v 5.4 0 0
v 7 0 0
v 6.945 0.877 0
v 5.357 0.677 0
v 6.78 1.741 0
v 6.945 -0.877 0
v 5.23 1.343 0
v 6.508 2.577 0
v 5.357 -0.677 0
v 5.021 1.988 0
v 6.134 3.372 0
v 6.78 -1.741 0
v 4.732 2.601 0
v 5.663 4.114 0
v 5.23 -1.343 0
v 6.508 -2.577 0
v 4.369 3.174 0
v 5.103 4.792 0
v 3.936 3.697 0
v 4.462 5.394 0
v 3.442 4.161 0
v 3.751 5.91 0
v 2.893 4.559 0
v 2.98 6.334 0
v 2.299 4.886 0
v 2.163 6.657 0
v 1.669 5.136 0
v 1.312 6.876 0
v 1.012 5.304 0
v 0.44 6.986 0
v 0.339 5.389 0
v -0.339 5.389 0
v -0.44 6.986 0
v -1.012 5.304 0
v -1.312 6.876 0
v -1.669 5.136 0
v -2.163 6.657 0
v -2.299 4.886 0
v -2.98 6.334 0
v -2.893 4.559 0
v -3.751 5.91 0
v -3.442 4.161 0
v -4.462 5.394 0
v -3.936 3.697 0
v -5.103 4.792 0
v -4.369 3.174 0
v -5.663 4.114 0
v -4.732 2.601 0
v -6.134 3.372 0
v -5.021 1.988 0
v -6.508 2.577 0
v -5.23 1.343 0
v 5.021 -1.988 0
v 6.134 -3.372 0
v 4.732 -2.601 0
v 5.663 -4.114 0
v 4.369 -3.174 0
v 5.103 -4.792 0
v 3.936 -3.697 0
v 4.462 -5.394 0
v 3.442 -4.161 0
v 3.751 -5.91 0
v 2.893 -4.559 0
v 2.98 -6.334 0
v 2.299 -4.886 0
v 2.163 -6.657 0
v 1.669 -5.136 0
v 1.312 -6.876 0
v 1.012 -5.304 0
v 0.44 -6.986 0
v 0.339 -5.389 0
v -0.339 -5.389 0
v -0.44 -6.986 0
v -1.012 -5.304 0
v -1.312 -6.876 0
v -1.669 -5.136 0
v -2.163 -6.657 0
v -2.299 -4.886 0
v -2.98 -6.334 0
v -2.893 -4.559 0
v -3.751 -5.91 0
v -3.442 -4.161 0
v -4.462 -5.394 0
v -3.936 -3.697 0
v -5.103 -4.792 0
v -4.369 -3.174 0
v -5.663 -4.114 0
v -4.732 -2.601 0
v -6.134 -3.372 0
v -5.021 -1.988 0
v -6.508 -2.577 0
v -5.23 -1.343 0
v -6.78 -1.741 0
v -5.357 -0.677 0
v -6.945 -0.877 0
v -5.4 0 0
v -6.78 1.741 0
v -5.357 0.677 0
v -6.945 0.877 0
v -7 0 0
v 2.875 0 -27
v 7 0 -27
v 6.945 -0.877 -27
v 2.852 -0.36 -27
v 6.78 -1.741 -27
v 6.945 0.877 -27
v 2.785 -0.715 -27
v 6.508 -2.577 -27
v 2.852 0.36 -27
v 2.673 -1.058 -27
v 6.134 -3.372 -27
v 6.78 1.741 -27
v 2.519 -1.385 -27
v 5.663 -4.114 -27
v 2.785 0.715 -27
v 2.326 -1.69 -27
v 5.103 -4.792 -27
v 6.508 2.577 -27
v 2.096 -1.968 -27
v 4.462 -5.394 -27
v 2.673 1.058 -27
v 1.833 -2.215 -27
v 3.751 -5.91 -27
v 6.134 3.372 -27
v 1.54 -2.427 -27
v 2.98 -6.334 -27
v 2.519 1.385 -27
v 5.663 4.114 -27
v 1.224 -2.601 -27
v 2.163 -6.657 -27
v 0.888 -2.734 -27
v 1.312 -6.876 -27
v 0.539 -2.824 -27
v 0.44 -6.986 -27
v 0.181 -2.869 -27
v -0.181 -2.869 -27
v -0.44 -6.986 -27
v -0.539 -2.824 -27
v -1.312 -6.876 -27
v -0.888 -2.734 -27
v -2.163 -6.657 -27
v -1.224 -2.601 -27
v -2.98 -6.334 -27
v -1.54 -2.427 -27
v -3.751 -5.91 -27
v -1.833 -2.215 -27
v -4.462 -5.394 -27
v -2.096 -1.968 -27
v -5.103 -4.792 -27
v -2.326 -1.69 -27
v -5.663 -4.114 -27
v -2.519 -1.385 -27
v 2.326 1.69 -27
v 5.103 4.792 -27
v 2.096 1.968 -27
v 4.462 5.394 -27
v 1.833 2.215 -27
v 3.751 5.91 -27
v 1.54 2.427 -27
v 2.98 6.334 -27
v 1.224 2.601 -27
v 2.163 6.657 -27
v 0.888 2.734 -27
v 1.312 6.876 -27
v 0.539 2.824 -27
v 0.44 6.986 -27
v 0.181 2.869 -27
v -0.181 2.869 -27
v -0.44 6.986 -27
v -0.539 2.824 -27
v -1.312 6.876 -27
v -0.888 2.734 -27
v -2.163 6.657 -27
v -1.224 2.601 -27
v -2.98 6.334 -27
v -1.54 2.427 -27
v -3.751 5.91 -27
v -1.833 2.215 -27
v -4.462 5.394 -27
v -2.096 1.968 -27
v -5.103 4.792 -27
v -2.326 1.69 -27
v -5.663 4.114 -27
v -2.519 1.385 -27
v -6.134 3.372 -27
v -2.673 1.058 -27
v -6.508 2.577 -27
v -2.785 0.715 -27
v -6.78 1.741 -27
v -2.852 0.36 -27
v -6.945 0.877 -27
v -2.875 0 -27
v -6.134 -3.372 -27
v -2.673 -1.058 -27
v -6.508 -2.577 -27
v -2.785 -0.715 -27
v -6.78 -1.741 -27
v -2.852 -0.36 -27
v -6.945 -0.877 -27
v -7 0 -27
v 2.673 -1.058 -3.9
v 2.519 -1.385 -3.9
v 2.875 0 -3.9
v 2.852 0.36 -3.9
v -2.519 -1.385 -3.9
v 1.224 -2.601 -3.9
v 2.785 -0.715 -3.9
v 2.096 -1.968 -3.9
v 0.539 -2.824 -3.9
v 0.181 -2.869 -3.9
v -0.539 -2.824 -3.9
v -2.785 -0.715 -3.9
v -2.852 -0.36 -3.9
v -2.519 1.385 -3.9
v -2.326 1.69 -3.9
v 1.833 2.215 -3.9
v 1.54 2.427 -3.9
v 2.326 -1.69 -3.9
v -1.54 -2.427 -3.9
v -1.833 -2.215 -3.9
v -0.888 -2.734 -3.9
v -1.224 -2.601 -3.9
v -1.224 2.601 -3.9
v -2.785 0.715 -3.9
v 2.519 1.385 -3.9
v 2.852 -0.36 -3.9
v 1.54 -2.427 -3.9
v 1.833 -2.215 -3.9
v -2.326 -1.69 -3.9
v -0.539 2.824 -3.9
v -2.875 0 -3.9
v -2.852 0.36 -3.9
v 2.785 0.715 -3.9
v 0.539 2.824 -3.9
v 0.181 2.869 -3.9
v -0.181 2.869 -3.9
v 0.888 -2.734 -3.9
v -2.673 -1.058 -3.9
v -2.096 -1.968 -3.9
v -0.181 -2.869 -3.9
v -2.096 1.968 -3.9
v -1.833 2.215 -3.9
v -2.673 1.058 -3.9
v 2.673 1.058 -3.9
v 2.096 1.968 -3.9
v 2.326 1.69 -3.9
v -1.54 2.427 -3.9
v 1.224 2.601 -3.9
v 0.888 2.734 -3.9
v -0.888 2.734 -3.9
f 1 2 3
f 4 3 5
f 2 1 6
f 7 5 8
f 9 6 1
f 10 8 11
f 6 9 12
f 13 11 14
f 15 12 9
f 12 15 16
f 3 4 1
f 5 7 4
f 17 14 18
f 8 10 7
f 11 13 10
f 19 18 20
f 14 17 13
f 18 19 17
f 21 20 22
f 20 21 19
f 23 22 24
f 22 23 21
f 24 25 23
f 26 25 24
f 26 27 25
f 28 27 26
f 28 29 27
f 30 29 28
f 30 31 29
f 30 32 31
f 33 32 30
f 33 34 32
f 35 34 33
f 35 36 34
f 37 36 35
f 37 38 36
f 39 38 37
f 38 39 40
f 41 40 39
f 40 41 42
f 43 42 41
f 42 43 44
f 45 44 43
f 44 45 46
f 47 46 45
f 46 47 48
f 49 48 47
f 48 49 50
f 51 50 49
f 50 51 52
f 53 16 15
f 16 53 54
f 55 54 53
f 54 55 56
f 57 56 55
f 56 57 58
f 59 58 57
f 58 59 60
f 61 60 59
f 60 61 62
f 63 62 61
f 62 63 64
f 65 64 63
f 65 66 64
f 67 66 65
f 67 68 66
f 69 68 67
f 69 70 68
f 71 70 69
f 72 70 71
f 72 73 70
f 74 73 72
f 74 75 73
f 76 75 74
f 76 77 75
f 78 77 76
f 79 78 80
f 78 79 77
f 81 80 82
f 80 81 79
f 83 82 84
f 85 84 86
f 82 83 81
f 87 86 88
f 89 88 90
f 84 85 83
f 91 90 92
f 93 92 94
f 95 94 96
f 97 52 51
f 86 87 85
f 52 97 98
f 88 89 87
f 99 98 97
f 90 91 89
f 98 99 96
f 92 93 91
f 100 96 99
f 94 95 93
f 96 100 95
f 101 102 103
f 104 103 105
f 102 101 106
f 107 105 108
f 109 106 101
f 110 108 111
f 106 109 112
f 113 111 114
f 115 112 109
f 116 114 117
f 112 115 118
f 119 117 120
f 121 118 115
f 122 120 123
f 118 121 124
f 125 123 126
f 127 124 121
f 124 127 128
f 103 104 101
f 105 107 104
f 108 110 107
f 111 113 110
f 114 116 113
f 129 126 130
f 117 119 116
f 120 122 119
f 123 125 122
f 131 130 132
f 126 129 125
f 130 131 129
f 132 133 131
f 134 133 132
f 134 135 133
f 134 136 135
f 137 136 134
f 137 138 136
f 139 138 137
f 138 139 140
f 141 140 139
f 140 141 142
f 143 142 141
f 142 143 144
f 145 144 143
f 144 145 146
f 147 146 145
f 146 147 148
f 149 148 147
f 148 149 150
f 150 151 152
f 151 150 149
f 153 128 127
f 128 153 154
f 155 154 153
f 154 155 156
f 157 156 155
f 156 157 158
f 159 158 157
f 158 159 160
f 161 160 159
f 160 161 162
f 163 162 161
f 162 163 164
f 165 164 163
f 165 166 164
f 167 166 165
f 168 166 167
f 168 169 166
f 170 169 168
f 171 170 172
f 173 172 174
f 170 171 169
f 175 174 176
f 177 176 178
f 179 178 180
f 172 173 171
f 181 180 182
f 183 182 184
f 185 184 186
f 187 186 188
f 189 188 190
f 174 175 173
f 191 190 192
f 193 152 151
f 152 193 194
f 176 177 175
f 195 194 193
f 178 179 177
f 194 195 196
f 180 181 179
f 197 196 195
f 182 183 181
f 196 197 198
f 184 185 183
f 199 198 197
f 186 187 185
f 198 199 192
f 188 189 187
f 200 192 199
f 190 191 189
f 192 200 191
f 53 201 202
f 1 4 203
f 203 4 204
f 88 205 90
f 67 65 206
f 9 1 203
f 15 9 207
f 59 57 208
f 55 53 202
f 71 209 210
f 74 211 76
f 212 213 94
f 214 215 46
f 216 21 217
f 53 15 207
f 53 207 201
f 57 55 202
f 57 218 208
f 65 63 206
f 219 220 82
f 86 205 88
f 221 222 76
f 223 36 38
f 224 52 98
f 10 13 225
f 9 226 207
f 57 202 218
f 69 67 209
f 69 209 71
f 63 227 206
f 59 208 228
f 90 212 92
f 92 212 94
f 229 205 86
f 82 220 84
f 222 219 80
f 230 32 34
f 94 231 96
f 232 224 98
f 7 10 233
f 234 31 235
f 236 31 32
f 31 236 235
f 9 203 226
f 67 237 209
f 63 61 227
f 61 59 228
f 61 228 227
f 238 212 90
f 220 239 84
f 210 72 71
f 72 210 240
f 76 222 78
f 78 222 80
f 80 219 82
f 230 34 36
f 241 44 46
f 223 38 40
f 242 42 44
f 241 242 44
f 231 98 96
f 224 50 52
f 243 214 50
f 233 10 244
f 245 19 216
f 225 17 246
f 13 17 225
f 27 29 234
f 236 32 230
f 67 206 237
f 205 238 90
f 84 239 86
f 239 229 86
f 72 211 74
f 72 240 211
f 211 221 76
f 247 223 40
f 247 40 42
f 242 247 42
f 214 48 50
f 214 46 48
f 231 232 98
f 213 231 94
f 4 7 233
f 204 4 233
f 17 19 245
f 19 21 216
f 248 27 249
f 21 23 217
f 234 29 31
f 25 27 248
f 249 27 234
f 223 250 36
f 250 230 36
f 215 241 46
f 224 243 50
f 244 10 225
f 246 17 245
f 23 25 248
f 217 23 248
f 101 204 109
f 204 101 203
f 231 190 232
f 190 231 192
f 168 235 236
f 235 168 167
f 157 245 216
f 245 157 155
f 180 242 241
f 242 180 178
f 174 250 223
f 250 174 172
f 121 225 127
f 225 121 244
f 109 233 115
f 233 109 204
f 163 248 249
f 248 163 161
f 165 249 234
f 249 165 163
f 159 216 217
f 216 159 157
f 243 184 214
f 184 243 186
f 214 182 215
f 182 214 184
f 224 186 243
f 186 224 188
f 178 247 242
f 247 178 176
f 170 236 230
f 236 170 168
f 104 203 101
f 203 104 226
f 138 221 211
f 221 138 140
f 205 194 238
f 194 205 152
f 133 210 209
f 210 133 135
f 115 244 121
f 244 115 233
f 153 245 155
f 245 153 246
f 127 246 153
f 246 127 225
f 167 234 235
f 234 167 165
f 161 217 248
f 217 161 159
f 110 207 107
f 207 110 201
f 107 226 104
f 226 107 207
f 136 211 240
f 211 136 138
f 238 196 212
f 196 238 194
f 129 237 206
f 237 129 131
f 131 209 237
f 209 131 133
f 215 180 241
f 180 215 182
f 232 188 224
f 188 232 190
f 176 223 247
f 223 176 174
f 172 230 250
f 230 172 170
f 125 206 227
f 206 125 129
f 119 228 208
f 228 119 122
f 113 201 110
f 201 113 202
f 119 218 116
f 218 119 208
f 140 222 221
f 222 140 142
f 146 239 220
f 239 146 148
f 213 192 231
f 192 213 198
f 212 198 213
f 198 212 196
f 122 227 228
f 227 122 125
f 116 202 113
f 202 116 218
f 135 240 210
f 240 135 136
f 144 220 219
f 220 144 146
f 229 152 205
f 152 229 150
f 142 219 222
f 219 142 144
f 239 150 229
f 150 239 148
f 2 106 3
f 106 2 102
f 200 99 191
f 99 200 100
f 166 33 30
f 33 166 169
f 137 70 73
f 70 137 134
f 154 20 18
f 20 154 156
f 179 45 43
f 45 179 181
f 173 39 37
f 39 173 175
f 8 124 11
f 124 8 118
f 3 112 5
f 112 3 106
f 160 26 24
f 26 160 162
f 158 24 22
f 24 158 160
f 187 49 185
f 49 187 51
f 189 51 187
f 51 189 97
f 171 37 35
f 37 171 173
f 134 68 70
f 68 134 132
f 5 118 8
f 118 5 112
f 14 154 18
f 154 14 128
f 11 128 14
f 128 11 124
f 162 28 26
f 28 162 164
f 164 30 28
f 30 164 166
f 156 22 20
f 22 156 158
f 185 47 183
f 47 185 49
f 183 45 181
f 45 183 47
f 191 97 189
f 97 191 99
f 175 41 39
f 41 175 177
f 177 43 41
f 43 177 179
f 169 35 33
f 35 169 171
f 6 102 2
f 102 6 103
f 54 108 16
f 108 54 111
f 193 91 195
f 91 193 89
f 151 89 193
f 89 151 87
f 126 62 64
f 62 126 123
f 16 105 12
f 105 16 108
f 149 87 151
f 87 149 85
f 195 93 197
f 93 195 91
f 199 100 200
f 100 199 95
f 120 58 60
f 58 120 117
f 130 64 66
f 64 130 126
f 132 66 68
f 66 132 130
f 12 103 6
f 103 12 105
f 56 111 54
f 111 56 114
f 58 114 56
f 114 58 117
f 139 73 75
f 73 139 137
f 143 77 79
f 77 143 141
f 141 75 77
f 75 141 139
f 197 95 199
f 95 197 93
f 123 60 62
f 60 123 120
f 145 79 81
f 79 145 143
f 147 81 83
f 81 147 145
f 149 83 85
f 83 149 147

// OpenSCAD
$fn = 50;


difference() {
	union() {
		translate(v = [0, 0, -27.0000000000]) {
			cylinder(h = 27, r = 7.0000000000);
		}
		cylinder(h = 0, r = 13.0000000000);
	}
	union() {
		translate(v = [0, 0, 0]) {
			rotate(a = [0, 0, 0]) {
				difference() {
					union() {
						#translate(v = [0, 0, -27.0000000000]) {
							cylinder(h = 27, r = 2.6000000000);
						}
						#translate(v = [0, 0, -3.9000000000]) {
							cylinder(h = 3.9000000000, r1 = 2.8750000000, r2 = 5.4000000000);
						}
						#translate(v = [0, 0, -27.0000000000]) {
							cylinder(h = 27, r = 2.8750000000);
						}
						#translate(v = [0, 0, -27.0000000000]) {
							cylinder(h = 27, r = 2.6000000000);
						}
					}
					union();
				}
			}
		}
	}
}
